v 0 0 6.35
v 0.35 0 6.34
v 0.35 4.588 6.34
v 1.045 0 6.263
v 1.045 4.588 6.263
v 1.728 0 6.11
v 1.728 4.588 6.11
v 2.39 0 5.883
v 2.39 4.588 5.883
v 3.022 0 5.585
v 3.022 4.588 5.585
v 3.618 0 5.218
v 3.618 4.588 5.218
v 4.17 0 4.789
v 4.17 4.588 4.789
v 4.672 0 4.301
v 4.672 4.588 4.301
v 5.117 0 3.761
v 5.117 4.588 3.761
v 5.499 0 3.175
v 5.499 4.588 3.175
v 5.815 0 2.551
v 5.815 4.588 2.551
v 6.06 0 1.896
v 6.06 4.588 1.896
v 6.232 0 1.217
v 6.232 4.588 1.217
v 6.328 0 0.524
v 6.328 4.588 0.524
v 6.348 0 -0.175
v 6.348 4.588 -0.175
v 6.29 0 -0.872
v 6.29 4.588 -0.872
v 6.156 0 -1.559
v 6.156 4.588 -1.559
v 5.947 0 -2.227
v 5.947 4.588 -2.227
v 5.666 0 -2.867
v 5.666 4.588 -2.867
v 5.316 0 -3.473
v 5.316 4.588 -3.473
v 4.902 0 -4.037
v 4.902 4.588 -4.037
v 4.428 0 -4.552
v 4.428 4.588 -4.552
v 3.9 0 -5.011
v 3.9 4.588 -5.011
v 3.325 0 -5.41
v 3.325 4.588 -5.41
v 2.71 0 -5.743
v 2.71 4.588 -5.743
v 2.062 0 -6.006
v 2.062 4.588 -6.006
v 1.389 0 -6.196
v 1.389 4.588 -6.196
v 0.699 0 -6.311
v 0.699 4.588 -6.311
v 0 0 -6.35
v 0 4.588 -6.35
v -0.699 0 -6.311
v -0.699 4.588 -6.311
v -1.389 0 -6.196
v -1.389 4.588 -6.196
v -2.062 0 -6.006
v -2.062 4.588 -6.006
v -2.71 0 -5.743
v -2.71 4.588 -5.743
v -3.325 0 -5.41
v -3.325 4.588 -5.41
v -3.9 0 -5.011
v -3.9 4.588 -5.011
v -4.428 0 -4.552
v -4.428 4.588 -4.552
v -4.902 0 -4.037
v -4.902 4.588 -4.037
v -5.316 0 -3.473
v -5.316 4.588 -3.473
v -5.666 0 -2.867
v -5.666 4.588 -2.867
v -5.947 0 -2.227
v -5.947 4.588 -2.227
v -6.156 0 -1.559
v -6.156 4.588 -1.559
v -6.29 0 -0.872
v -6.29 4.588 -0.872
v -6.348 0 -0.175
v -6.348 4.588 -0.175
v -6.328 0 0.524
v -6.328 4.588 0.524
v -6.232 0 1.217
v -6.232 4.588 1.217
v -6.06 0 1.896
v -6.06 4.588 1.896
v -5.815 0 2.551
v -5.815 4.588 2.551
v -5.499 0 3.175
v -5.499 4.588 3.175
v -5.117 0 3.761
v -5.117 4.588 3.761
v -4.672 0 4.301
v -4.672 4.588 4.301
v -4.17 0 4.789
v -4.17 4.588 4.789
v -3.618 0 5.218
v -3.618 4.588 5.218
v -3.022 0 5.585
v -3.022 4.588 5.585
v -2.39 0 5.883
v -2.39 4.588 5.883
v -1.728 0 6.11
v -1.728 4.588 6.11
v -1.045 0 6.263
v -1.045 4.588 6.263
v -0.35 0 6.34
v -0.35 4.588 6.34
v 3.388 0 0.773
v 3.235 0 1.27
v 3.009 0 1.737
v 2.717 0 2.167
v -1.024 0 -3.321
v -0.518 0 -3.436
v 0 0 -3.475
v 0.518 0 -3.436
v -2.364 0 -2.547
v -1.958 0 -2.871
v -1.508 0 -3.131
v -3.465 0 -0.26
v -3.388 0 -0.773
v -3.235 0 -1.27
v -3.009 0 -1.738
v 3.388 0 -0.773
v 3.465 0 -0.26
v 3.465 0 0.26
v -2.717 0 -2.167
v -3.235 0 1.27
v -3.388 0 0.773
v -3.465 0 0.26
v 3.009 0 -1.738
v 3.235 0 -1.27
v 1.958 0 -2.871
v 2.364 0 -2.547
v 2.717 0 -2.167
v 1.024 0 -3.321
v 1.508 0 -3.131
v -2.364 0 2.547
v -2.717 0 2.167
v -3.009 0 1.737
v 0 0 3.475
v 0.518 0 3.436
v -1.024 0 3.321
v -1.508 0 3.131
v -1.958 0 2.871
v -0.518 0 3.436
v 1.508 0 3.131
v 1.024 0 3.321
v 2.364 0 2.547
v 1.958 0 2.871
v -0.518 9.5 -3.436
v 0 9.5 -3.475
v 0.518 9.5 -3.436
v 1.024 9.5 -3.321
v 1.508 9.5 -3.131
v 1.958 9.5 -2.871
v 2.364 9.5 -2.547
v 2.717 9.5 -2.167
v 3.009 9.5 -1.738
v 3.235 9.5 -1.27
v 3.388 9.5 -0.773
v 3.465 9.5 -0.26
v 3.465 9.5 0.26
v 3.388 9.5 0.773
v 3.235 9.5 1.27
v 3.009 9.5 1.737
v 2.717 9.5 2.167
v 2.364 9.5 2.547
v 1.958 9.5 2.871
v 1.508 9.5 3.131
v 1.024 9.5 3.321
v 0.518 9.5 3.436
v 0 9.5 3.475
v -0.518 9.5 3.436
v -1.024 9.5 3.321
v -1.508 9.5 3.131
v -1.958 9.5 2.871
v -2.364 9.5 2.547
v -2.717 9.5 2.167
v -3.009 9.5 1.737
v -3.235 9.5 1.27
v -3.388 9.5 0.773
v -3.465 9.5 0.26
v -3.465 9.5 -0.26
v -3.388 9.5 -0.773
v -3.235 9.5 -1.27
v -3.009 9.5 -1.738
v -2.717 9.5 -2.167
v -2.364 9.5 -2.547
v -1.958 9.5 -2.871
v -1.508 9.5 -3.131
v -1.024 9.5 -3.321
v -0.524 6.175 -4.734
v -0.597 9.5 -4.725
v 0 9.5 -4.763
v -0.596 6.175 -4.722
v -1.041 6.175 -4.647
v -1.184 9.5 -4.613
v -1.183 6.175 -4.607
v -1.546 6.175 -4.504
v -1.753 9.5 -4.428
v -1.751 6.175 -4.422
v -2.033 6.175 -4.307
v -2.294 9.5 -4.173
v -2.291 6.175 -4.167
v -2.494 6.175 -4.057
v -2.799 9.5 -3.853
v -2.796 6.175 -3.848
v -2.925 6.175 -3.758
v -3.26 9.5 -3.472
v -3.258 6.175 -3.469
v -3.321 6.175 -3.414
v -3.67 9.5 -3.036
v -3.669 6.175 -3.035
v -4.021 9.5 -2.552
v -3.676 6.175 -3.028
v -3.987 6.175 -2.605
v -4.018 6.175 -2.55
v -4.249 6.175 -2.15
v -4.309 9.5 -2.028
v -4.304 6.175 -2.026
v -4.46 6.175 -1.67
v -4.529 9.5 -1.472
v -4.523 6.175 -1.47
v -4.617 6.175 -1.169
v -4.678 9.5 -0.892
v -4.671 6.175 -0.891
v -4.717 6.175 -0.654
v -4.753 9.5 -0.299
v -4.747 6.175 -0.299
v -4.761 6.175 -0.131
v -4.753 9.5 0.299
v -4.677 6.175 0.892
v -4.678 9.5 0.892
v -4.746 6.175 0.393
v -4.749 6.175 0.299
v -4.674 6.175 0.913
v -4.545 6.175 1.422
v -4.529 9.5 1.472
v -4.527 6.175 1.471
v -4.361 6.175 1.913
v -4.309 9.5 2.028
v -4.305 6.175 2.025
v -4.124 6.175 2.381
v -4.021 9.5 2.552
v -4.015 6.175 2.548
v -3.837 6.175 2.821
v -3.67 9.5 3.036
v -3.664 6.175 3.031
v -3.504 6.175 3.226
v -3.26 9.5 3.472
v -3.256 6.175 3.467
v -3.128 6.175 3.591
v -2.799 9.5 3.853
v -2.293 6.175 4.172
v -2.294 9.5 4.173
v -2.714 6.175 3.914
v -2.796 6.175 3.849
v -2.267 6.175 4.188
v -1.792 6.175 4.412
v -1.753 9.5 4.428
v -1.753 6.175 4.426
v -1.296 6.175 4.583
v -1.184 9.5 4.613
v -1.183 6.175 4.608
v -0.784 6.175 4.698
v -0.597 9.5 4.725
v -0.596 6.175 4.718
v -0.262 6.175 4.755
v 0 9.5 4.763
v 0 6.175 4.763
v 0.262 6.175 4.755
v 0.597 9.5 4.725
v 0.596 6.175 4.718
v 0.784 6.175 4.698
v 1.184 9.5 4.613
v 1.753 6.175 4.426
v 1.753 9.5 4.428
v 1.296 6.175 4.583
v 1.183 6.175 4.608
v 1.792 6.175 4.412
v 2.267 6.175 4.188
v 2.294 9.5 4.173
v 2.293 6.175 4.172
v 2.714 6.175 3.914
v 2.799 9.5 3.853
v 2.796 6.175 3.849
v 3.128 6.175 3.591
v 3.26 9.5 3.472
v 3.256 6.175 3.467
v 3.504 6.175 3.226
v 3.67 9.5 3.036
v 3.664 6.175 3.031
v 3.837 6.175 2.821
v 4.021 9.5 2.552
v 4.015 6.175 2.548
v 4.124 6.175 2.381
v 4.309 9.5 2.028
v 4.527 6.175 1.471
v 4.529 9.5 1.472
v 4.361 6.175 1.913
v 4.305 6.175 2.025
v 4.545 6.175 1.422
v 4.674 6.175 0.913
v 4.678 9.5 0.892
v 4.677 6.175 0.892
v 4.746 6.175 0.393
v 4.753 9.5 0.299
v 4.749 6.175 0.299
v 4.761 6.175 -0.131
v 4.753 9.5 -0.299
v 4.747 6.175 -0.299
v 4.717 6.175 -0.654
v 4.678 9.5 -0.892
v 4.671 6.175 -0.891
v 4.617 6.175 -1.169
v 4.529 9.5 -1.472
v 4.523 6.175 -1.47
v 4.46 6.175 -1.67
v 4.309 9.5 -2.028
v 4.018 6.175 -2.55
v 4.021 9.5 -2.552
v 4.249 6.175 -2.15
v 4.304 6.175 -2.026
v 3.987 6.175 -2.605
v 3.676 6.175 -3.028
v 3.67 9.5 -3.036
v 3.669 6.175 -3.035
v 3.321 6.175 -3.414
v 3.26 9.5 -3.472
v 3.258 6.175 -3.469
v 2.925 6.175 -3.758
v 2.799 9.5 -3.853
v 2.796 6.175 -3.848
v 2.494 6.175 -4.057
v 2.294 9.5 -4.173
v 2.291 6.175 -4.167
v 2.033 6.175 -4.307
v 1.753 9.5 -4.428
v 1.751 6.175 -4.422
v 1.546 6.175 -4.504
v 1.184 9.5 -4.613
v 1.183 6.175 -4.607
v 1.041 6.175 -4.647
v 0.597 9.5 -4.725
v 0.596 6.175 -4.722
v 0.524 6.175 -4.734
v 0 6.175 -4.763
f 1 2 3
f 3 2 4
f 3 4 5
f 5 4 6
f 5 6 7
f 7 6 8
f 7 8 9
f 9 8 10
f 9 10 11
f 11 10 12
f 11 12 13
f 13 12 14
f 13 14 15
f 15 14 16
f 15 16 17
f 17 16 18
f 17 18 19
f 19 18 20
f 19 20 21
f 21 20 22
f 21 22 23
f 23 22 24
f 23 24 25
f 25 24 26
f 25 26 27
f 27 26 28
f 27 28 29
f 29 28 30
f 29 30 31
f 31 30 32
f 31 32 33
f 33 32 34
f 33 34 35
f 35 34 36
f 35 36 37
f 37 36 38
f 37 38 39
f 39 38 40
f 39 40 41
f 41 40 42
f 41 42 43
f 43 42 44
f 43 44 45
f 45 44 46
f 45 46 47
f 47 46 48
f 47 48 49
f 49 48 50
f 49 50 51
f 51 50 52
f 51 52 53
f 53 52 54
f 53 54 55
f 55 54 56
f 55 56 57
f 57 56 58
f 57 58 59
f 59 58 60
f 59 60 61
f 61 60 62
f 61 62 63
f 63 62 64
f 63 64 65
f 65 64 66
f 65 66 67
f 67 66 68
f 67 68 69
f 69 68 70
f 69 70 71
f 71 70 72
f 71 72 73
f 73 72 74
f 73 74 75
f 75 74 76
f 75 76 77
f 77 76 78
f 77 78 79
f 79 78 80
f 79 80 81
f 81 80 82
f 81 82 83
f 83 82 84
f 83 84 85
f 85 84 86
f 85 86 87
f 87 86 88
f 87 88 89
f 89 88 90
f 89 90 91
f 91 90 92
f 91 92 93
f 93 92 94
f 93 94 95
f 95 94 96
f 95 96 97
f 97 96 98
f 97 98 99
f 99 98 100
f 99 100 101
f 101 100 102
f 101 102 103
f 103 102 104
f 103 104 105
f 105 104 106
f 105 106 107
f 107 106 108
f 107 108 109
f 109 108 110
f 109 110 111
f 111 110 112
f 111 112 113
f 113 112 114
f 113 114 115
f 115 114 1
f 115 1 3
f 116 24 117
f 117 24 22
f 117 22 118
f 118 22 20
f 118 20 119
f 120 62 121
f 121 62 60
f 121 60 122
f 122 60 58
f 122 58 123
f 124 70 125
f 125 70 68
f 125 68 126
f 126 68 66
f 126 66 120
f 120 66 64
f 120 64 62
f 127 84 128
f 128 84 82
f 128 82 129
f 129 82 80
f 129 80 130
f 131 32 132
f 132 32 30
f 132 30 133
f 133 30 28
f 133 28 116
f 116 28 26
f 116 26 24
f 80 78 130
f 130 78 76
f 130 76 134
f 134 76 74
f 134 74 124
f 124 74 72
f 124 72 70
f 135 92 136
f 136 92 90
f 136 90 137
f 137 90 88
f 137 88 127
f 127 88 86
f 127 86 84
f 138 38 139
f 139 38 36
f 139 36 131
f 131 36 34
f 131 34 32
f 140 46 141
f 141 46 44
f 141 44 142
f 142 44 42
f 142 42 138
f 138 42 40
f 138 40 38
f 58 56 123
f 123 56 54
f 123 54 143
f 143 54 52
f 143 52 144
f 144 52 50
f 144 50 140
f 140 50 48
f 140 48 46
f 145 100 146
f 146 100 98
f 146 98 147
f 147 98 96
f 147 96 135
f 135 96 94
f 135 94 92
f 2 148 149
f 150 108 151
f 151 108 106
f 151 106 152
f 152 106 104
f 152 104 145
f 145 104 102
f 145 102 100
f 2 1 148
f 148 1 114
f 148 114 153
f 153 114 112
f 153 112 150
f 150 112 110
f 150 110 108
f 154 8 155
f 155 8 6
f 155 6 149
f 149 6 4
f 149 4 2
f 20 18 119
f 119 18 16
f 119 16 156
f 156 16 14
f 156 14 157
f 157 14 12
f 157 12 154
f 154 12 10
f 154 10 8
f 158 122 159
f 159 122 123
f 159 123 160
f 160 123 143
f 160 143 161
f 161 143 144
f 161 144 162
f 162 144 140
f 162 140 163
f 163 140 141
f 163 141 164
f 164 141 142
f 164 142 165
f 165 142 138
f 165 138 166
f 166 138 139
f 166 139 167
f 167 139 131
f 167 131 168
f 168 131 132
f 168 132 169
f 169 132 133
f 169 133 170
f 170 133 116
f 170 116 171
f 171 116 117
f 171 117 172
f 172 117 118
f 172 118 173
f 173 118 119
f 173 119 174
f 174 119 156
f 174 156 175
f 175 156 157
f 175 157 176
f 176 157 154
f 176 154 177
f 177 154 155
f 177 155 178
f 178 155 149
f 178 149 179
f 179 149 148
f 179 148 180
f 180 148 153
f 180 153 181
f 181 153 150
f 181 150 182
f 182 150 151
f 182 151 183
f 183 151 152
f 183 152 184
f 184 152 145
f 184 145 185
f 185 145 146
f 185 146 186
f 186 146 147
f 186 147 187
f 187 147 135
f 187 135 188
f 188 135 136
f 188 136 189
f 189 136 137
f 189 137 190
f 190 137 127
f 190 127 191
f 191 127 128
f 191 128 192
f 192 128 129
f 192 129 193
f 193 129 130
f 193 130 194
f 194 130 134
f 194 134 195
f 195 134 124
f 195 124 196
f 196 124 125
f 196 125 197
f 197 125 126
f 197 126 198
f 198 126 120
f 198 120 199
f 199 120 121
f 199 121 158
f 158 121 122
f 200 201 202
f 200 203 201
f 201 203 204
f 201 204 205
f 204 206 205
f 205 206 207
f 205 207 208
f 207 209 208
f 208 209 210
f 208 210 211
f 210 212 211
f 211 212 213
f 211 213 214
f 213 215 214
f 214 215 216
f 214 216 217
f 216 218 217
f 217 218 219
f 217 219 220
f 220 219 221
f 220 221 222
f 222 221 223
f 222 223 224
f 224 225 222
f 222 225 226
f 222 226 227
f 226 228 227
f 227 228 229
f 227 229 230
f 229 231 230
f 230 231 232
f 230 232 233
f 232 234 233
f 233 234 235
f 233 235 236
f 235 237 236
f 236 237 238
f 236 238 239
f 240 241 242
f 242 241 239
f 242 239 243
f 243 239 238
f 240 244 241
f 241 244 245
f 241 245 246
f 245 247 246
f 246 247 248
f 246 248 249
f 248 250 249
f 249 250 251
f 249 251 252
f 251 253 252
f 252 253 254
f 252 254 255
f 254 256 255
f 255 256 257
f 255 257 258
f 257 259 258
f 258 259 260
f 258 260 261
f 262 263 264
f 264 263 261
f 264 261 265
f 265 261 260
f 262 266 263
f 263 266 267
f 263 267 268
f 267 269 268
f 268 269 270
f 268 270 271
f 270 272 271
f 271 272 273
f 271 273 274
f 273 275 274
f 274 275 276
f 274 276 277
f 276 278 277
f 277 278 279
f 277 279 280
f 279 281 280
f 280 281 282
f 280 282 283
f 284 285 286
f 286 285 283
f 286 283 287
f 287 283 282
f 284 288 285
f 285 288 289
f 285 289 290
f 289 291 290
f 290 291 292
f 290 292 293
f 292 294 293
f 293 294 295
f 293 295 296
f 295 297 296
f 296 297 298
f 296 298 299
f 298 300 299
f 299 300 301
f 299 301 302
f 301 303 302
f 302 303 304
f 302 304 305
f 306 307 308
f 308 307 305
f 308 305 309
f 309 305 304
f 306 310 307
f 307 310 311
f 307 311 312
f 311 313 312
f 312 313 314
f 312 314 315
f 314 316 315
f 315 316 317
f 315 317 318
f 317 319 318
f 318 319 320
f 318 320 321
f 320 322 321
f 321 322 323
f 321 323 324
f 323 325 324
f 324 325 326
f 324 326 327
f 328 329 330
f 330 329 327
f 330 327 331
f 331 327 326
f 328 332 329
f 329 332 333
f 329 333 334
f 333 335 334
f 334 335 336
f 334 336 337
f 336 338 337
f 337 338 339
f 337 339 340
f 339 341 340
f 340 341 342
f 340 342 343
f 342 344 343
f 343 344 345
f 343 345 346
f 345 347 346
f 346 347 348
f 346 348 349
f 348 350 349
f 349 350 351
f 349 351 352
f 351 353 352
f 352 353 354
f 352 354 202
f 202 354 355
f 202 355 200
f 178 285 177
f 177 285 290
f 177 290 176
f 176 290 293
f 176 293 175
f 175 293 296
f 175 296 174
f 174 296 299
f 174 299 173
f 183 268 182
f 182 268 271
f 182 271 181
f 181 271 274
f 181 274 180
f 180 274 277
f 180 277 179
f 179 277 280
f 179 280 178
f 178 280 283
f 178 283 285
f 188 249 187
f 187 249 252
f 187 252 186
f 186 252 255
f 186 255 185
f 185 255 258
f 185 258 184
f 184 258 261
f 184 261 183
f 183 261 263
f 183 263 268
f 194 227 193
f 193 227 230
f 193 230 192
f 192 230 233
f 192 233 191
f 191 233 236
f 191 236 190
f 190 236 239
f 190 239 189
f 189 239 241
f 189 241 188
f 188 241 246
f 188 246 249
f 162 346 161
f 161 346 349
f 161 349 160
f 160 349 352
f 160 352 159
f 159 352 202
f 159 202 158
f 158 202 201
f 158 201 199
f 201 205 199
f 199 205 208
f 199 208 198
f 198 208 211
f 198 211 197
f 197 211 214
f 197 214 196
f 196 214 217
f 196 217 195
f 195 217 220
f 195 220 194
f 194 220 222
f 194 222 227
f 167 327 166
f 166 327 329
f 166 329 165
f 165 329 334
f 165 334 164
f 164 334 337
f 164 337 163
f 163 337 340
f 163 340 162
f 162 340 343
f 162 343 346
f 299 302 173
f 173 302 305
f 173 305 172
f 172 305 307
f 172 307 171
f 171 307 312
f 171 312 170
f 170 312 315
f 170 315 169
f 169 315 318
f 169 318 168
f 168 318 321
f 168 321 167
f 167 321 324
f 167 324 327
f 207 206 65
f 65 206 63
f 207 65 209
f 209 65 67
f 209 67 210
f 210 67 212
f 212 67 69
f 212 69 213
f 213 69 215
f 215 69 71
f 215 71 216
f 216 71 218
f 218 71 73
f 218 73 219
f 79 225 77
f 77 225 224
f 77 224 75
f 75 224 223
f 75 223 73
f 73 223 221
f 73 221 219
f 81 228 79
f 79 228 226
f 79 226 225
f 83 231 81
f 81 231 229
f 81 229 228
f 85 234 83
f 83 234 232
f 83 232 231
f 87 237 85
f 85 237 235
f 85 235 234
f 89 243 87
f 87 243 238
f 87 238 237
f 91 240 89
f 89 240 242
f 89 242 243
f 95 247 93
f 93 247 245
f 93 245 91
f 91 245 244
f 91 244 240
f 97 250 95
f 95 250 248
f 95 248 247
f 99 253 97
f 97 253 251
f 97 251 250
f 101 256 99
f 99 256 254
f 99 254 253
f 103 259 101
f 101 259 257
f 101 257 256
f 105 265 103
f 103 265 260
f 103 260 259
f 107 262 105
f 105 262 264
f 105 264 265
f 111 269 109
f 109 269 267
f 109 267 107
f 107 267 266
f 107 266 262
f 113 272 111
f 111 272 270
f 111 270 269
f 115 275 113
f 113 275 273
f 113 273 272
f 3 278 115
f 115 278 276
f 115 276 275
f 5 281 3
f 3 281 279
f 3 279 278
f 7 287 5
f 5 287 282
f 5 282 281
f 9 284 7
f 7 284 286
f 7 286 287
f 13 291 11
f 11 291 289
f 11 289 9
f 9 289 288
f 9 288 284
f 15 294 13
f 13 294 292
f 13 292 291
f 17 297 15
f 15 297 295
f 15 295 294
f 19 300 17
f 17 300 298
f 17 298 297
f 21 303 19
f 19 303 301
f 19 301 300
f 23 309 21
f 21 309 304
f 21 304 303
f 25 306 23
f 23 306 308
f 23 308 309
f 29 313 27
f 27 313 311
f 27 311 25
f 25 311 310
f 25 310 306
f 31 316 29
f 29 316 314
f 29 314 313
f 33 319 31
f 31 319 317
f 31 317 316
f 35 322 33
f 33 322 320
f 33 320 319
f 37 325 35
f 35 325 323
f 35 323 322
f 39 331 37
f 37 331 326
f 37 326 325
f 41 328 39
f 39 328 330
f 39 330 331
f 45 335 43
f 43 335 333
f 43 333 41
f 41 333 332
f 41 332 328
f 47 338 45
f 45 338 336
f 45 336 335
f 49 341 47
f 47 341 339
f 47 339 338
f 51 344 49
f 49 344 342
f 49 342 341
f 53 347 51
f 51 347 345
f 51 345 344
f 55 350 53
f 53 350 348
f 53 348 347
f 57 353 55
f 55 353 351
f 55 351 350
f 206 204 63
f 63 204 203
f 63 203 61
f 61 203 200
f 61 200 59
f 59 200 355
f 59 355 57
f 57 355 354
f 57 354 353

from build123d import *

# Parameters (mm, degrees)
SKETCH1_R           = 6.35
SKETCH1_R_2         = 4.7625
BOSS_EXTRUDE1_DEPTH = 3.175
SKETCH1_3_R         = 4.7625
SKETCH1_3_R_2       = 3.475
BOSS_EXTRUDE2_DEPTH = 9.5
CHAMFER1_SIZE       = 3


with BuildPart() as part:
    # Sketch1 → Boss-Extrude1 (new body)
    with BuildSketch(Plane(origin=(0, 0, 0), x_dir=(1, 0, 0), z_dir=(0, 1, 0))):
        with Locations(Location((0, 0, 0), (0, 0, 270))):
            Circle(SKETCH1_R)
        with Locations(Location((0, 0, 0), (0, 0, 270))):
            Circle(SKETCH1_R_2, mode=Mode.SUBTRACT)
    extrude(amount=BOSS_EXTRUDE1_DEPTH)

    # Sketch1<3> → Boss-Extrude2 (add)
    with BuildSketch(Plane(origin=(0, 0, 0), x_dir=(1, 0, 0), z_dir=(0, 1, 0))):
        with Locations(Location((0, 0, 0), (0, 0, 270))):
            Circle(SKETCH1_3_R)
        with Locations(Location((0, 0, 0), (0, 0, 270))):
            Circle(SKETCH1_3_R_2, mode=Mode.SUBTRACT)
    extrude(amount=BOSS_EXTRUDE2_DEPTH)

    # Chamfer1
    # the kernel refuses this chamfer: 3 mm, written as the material it adds along each edge
    with BuildSketch(Plane(origin=(0, 3.175, 0), x_dir=(0, 0, 1), z_dir=(-1, 0, 0))) as chamfer1_piece_1_section:
        Polygon((4.7625 + CHAMFER1_SIZE, 0), (4.7625, CHAMFER1_SIZE), (4.7625, 0), align=None)
    chamfer1_piece_1 = revolve(axis=Axis((0, 3.175, 0), (0, 1, 0)), mode=Mode.PRIVATE)
    chamfer1_piece_1 = chamfer1_piece_1 & Plane(origin=(0, 5.38786909, 0), x_dir=(0, 0, 1), z_dir=(0, -1, 0)) * Cylinder(6.35, 32, mode=Mode.PRIVATE)
    add(chamfer1_piece_1)


solid = part.part
